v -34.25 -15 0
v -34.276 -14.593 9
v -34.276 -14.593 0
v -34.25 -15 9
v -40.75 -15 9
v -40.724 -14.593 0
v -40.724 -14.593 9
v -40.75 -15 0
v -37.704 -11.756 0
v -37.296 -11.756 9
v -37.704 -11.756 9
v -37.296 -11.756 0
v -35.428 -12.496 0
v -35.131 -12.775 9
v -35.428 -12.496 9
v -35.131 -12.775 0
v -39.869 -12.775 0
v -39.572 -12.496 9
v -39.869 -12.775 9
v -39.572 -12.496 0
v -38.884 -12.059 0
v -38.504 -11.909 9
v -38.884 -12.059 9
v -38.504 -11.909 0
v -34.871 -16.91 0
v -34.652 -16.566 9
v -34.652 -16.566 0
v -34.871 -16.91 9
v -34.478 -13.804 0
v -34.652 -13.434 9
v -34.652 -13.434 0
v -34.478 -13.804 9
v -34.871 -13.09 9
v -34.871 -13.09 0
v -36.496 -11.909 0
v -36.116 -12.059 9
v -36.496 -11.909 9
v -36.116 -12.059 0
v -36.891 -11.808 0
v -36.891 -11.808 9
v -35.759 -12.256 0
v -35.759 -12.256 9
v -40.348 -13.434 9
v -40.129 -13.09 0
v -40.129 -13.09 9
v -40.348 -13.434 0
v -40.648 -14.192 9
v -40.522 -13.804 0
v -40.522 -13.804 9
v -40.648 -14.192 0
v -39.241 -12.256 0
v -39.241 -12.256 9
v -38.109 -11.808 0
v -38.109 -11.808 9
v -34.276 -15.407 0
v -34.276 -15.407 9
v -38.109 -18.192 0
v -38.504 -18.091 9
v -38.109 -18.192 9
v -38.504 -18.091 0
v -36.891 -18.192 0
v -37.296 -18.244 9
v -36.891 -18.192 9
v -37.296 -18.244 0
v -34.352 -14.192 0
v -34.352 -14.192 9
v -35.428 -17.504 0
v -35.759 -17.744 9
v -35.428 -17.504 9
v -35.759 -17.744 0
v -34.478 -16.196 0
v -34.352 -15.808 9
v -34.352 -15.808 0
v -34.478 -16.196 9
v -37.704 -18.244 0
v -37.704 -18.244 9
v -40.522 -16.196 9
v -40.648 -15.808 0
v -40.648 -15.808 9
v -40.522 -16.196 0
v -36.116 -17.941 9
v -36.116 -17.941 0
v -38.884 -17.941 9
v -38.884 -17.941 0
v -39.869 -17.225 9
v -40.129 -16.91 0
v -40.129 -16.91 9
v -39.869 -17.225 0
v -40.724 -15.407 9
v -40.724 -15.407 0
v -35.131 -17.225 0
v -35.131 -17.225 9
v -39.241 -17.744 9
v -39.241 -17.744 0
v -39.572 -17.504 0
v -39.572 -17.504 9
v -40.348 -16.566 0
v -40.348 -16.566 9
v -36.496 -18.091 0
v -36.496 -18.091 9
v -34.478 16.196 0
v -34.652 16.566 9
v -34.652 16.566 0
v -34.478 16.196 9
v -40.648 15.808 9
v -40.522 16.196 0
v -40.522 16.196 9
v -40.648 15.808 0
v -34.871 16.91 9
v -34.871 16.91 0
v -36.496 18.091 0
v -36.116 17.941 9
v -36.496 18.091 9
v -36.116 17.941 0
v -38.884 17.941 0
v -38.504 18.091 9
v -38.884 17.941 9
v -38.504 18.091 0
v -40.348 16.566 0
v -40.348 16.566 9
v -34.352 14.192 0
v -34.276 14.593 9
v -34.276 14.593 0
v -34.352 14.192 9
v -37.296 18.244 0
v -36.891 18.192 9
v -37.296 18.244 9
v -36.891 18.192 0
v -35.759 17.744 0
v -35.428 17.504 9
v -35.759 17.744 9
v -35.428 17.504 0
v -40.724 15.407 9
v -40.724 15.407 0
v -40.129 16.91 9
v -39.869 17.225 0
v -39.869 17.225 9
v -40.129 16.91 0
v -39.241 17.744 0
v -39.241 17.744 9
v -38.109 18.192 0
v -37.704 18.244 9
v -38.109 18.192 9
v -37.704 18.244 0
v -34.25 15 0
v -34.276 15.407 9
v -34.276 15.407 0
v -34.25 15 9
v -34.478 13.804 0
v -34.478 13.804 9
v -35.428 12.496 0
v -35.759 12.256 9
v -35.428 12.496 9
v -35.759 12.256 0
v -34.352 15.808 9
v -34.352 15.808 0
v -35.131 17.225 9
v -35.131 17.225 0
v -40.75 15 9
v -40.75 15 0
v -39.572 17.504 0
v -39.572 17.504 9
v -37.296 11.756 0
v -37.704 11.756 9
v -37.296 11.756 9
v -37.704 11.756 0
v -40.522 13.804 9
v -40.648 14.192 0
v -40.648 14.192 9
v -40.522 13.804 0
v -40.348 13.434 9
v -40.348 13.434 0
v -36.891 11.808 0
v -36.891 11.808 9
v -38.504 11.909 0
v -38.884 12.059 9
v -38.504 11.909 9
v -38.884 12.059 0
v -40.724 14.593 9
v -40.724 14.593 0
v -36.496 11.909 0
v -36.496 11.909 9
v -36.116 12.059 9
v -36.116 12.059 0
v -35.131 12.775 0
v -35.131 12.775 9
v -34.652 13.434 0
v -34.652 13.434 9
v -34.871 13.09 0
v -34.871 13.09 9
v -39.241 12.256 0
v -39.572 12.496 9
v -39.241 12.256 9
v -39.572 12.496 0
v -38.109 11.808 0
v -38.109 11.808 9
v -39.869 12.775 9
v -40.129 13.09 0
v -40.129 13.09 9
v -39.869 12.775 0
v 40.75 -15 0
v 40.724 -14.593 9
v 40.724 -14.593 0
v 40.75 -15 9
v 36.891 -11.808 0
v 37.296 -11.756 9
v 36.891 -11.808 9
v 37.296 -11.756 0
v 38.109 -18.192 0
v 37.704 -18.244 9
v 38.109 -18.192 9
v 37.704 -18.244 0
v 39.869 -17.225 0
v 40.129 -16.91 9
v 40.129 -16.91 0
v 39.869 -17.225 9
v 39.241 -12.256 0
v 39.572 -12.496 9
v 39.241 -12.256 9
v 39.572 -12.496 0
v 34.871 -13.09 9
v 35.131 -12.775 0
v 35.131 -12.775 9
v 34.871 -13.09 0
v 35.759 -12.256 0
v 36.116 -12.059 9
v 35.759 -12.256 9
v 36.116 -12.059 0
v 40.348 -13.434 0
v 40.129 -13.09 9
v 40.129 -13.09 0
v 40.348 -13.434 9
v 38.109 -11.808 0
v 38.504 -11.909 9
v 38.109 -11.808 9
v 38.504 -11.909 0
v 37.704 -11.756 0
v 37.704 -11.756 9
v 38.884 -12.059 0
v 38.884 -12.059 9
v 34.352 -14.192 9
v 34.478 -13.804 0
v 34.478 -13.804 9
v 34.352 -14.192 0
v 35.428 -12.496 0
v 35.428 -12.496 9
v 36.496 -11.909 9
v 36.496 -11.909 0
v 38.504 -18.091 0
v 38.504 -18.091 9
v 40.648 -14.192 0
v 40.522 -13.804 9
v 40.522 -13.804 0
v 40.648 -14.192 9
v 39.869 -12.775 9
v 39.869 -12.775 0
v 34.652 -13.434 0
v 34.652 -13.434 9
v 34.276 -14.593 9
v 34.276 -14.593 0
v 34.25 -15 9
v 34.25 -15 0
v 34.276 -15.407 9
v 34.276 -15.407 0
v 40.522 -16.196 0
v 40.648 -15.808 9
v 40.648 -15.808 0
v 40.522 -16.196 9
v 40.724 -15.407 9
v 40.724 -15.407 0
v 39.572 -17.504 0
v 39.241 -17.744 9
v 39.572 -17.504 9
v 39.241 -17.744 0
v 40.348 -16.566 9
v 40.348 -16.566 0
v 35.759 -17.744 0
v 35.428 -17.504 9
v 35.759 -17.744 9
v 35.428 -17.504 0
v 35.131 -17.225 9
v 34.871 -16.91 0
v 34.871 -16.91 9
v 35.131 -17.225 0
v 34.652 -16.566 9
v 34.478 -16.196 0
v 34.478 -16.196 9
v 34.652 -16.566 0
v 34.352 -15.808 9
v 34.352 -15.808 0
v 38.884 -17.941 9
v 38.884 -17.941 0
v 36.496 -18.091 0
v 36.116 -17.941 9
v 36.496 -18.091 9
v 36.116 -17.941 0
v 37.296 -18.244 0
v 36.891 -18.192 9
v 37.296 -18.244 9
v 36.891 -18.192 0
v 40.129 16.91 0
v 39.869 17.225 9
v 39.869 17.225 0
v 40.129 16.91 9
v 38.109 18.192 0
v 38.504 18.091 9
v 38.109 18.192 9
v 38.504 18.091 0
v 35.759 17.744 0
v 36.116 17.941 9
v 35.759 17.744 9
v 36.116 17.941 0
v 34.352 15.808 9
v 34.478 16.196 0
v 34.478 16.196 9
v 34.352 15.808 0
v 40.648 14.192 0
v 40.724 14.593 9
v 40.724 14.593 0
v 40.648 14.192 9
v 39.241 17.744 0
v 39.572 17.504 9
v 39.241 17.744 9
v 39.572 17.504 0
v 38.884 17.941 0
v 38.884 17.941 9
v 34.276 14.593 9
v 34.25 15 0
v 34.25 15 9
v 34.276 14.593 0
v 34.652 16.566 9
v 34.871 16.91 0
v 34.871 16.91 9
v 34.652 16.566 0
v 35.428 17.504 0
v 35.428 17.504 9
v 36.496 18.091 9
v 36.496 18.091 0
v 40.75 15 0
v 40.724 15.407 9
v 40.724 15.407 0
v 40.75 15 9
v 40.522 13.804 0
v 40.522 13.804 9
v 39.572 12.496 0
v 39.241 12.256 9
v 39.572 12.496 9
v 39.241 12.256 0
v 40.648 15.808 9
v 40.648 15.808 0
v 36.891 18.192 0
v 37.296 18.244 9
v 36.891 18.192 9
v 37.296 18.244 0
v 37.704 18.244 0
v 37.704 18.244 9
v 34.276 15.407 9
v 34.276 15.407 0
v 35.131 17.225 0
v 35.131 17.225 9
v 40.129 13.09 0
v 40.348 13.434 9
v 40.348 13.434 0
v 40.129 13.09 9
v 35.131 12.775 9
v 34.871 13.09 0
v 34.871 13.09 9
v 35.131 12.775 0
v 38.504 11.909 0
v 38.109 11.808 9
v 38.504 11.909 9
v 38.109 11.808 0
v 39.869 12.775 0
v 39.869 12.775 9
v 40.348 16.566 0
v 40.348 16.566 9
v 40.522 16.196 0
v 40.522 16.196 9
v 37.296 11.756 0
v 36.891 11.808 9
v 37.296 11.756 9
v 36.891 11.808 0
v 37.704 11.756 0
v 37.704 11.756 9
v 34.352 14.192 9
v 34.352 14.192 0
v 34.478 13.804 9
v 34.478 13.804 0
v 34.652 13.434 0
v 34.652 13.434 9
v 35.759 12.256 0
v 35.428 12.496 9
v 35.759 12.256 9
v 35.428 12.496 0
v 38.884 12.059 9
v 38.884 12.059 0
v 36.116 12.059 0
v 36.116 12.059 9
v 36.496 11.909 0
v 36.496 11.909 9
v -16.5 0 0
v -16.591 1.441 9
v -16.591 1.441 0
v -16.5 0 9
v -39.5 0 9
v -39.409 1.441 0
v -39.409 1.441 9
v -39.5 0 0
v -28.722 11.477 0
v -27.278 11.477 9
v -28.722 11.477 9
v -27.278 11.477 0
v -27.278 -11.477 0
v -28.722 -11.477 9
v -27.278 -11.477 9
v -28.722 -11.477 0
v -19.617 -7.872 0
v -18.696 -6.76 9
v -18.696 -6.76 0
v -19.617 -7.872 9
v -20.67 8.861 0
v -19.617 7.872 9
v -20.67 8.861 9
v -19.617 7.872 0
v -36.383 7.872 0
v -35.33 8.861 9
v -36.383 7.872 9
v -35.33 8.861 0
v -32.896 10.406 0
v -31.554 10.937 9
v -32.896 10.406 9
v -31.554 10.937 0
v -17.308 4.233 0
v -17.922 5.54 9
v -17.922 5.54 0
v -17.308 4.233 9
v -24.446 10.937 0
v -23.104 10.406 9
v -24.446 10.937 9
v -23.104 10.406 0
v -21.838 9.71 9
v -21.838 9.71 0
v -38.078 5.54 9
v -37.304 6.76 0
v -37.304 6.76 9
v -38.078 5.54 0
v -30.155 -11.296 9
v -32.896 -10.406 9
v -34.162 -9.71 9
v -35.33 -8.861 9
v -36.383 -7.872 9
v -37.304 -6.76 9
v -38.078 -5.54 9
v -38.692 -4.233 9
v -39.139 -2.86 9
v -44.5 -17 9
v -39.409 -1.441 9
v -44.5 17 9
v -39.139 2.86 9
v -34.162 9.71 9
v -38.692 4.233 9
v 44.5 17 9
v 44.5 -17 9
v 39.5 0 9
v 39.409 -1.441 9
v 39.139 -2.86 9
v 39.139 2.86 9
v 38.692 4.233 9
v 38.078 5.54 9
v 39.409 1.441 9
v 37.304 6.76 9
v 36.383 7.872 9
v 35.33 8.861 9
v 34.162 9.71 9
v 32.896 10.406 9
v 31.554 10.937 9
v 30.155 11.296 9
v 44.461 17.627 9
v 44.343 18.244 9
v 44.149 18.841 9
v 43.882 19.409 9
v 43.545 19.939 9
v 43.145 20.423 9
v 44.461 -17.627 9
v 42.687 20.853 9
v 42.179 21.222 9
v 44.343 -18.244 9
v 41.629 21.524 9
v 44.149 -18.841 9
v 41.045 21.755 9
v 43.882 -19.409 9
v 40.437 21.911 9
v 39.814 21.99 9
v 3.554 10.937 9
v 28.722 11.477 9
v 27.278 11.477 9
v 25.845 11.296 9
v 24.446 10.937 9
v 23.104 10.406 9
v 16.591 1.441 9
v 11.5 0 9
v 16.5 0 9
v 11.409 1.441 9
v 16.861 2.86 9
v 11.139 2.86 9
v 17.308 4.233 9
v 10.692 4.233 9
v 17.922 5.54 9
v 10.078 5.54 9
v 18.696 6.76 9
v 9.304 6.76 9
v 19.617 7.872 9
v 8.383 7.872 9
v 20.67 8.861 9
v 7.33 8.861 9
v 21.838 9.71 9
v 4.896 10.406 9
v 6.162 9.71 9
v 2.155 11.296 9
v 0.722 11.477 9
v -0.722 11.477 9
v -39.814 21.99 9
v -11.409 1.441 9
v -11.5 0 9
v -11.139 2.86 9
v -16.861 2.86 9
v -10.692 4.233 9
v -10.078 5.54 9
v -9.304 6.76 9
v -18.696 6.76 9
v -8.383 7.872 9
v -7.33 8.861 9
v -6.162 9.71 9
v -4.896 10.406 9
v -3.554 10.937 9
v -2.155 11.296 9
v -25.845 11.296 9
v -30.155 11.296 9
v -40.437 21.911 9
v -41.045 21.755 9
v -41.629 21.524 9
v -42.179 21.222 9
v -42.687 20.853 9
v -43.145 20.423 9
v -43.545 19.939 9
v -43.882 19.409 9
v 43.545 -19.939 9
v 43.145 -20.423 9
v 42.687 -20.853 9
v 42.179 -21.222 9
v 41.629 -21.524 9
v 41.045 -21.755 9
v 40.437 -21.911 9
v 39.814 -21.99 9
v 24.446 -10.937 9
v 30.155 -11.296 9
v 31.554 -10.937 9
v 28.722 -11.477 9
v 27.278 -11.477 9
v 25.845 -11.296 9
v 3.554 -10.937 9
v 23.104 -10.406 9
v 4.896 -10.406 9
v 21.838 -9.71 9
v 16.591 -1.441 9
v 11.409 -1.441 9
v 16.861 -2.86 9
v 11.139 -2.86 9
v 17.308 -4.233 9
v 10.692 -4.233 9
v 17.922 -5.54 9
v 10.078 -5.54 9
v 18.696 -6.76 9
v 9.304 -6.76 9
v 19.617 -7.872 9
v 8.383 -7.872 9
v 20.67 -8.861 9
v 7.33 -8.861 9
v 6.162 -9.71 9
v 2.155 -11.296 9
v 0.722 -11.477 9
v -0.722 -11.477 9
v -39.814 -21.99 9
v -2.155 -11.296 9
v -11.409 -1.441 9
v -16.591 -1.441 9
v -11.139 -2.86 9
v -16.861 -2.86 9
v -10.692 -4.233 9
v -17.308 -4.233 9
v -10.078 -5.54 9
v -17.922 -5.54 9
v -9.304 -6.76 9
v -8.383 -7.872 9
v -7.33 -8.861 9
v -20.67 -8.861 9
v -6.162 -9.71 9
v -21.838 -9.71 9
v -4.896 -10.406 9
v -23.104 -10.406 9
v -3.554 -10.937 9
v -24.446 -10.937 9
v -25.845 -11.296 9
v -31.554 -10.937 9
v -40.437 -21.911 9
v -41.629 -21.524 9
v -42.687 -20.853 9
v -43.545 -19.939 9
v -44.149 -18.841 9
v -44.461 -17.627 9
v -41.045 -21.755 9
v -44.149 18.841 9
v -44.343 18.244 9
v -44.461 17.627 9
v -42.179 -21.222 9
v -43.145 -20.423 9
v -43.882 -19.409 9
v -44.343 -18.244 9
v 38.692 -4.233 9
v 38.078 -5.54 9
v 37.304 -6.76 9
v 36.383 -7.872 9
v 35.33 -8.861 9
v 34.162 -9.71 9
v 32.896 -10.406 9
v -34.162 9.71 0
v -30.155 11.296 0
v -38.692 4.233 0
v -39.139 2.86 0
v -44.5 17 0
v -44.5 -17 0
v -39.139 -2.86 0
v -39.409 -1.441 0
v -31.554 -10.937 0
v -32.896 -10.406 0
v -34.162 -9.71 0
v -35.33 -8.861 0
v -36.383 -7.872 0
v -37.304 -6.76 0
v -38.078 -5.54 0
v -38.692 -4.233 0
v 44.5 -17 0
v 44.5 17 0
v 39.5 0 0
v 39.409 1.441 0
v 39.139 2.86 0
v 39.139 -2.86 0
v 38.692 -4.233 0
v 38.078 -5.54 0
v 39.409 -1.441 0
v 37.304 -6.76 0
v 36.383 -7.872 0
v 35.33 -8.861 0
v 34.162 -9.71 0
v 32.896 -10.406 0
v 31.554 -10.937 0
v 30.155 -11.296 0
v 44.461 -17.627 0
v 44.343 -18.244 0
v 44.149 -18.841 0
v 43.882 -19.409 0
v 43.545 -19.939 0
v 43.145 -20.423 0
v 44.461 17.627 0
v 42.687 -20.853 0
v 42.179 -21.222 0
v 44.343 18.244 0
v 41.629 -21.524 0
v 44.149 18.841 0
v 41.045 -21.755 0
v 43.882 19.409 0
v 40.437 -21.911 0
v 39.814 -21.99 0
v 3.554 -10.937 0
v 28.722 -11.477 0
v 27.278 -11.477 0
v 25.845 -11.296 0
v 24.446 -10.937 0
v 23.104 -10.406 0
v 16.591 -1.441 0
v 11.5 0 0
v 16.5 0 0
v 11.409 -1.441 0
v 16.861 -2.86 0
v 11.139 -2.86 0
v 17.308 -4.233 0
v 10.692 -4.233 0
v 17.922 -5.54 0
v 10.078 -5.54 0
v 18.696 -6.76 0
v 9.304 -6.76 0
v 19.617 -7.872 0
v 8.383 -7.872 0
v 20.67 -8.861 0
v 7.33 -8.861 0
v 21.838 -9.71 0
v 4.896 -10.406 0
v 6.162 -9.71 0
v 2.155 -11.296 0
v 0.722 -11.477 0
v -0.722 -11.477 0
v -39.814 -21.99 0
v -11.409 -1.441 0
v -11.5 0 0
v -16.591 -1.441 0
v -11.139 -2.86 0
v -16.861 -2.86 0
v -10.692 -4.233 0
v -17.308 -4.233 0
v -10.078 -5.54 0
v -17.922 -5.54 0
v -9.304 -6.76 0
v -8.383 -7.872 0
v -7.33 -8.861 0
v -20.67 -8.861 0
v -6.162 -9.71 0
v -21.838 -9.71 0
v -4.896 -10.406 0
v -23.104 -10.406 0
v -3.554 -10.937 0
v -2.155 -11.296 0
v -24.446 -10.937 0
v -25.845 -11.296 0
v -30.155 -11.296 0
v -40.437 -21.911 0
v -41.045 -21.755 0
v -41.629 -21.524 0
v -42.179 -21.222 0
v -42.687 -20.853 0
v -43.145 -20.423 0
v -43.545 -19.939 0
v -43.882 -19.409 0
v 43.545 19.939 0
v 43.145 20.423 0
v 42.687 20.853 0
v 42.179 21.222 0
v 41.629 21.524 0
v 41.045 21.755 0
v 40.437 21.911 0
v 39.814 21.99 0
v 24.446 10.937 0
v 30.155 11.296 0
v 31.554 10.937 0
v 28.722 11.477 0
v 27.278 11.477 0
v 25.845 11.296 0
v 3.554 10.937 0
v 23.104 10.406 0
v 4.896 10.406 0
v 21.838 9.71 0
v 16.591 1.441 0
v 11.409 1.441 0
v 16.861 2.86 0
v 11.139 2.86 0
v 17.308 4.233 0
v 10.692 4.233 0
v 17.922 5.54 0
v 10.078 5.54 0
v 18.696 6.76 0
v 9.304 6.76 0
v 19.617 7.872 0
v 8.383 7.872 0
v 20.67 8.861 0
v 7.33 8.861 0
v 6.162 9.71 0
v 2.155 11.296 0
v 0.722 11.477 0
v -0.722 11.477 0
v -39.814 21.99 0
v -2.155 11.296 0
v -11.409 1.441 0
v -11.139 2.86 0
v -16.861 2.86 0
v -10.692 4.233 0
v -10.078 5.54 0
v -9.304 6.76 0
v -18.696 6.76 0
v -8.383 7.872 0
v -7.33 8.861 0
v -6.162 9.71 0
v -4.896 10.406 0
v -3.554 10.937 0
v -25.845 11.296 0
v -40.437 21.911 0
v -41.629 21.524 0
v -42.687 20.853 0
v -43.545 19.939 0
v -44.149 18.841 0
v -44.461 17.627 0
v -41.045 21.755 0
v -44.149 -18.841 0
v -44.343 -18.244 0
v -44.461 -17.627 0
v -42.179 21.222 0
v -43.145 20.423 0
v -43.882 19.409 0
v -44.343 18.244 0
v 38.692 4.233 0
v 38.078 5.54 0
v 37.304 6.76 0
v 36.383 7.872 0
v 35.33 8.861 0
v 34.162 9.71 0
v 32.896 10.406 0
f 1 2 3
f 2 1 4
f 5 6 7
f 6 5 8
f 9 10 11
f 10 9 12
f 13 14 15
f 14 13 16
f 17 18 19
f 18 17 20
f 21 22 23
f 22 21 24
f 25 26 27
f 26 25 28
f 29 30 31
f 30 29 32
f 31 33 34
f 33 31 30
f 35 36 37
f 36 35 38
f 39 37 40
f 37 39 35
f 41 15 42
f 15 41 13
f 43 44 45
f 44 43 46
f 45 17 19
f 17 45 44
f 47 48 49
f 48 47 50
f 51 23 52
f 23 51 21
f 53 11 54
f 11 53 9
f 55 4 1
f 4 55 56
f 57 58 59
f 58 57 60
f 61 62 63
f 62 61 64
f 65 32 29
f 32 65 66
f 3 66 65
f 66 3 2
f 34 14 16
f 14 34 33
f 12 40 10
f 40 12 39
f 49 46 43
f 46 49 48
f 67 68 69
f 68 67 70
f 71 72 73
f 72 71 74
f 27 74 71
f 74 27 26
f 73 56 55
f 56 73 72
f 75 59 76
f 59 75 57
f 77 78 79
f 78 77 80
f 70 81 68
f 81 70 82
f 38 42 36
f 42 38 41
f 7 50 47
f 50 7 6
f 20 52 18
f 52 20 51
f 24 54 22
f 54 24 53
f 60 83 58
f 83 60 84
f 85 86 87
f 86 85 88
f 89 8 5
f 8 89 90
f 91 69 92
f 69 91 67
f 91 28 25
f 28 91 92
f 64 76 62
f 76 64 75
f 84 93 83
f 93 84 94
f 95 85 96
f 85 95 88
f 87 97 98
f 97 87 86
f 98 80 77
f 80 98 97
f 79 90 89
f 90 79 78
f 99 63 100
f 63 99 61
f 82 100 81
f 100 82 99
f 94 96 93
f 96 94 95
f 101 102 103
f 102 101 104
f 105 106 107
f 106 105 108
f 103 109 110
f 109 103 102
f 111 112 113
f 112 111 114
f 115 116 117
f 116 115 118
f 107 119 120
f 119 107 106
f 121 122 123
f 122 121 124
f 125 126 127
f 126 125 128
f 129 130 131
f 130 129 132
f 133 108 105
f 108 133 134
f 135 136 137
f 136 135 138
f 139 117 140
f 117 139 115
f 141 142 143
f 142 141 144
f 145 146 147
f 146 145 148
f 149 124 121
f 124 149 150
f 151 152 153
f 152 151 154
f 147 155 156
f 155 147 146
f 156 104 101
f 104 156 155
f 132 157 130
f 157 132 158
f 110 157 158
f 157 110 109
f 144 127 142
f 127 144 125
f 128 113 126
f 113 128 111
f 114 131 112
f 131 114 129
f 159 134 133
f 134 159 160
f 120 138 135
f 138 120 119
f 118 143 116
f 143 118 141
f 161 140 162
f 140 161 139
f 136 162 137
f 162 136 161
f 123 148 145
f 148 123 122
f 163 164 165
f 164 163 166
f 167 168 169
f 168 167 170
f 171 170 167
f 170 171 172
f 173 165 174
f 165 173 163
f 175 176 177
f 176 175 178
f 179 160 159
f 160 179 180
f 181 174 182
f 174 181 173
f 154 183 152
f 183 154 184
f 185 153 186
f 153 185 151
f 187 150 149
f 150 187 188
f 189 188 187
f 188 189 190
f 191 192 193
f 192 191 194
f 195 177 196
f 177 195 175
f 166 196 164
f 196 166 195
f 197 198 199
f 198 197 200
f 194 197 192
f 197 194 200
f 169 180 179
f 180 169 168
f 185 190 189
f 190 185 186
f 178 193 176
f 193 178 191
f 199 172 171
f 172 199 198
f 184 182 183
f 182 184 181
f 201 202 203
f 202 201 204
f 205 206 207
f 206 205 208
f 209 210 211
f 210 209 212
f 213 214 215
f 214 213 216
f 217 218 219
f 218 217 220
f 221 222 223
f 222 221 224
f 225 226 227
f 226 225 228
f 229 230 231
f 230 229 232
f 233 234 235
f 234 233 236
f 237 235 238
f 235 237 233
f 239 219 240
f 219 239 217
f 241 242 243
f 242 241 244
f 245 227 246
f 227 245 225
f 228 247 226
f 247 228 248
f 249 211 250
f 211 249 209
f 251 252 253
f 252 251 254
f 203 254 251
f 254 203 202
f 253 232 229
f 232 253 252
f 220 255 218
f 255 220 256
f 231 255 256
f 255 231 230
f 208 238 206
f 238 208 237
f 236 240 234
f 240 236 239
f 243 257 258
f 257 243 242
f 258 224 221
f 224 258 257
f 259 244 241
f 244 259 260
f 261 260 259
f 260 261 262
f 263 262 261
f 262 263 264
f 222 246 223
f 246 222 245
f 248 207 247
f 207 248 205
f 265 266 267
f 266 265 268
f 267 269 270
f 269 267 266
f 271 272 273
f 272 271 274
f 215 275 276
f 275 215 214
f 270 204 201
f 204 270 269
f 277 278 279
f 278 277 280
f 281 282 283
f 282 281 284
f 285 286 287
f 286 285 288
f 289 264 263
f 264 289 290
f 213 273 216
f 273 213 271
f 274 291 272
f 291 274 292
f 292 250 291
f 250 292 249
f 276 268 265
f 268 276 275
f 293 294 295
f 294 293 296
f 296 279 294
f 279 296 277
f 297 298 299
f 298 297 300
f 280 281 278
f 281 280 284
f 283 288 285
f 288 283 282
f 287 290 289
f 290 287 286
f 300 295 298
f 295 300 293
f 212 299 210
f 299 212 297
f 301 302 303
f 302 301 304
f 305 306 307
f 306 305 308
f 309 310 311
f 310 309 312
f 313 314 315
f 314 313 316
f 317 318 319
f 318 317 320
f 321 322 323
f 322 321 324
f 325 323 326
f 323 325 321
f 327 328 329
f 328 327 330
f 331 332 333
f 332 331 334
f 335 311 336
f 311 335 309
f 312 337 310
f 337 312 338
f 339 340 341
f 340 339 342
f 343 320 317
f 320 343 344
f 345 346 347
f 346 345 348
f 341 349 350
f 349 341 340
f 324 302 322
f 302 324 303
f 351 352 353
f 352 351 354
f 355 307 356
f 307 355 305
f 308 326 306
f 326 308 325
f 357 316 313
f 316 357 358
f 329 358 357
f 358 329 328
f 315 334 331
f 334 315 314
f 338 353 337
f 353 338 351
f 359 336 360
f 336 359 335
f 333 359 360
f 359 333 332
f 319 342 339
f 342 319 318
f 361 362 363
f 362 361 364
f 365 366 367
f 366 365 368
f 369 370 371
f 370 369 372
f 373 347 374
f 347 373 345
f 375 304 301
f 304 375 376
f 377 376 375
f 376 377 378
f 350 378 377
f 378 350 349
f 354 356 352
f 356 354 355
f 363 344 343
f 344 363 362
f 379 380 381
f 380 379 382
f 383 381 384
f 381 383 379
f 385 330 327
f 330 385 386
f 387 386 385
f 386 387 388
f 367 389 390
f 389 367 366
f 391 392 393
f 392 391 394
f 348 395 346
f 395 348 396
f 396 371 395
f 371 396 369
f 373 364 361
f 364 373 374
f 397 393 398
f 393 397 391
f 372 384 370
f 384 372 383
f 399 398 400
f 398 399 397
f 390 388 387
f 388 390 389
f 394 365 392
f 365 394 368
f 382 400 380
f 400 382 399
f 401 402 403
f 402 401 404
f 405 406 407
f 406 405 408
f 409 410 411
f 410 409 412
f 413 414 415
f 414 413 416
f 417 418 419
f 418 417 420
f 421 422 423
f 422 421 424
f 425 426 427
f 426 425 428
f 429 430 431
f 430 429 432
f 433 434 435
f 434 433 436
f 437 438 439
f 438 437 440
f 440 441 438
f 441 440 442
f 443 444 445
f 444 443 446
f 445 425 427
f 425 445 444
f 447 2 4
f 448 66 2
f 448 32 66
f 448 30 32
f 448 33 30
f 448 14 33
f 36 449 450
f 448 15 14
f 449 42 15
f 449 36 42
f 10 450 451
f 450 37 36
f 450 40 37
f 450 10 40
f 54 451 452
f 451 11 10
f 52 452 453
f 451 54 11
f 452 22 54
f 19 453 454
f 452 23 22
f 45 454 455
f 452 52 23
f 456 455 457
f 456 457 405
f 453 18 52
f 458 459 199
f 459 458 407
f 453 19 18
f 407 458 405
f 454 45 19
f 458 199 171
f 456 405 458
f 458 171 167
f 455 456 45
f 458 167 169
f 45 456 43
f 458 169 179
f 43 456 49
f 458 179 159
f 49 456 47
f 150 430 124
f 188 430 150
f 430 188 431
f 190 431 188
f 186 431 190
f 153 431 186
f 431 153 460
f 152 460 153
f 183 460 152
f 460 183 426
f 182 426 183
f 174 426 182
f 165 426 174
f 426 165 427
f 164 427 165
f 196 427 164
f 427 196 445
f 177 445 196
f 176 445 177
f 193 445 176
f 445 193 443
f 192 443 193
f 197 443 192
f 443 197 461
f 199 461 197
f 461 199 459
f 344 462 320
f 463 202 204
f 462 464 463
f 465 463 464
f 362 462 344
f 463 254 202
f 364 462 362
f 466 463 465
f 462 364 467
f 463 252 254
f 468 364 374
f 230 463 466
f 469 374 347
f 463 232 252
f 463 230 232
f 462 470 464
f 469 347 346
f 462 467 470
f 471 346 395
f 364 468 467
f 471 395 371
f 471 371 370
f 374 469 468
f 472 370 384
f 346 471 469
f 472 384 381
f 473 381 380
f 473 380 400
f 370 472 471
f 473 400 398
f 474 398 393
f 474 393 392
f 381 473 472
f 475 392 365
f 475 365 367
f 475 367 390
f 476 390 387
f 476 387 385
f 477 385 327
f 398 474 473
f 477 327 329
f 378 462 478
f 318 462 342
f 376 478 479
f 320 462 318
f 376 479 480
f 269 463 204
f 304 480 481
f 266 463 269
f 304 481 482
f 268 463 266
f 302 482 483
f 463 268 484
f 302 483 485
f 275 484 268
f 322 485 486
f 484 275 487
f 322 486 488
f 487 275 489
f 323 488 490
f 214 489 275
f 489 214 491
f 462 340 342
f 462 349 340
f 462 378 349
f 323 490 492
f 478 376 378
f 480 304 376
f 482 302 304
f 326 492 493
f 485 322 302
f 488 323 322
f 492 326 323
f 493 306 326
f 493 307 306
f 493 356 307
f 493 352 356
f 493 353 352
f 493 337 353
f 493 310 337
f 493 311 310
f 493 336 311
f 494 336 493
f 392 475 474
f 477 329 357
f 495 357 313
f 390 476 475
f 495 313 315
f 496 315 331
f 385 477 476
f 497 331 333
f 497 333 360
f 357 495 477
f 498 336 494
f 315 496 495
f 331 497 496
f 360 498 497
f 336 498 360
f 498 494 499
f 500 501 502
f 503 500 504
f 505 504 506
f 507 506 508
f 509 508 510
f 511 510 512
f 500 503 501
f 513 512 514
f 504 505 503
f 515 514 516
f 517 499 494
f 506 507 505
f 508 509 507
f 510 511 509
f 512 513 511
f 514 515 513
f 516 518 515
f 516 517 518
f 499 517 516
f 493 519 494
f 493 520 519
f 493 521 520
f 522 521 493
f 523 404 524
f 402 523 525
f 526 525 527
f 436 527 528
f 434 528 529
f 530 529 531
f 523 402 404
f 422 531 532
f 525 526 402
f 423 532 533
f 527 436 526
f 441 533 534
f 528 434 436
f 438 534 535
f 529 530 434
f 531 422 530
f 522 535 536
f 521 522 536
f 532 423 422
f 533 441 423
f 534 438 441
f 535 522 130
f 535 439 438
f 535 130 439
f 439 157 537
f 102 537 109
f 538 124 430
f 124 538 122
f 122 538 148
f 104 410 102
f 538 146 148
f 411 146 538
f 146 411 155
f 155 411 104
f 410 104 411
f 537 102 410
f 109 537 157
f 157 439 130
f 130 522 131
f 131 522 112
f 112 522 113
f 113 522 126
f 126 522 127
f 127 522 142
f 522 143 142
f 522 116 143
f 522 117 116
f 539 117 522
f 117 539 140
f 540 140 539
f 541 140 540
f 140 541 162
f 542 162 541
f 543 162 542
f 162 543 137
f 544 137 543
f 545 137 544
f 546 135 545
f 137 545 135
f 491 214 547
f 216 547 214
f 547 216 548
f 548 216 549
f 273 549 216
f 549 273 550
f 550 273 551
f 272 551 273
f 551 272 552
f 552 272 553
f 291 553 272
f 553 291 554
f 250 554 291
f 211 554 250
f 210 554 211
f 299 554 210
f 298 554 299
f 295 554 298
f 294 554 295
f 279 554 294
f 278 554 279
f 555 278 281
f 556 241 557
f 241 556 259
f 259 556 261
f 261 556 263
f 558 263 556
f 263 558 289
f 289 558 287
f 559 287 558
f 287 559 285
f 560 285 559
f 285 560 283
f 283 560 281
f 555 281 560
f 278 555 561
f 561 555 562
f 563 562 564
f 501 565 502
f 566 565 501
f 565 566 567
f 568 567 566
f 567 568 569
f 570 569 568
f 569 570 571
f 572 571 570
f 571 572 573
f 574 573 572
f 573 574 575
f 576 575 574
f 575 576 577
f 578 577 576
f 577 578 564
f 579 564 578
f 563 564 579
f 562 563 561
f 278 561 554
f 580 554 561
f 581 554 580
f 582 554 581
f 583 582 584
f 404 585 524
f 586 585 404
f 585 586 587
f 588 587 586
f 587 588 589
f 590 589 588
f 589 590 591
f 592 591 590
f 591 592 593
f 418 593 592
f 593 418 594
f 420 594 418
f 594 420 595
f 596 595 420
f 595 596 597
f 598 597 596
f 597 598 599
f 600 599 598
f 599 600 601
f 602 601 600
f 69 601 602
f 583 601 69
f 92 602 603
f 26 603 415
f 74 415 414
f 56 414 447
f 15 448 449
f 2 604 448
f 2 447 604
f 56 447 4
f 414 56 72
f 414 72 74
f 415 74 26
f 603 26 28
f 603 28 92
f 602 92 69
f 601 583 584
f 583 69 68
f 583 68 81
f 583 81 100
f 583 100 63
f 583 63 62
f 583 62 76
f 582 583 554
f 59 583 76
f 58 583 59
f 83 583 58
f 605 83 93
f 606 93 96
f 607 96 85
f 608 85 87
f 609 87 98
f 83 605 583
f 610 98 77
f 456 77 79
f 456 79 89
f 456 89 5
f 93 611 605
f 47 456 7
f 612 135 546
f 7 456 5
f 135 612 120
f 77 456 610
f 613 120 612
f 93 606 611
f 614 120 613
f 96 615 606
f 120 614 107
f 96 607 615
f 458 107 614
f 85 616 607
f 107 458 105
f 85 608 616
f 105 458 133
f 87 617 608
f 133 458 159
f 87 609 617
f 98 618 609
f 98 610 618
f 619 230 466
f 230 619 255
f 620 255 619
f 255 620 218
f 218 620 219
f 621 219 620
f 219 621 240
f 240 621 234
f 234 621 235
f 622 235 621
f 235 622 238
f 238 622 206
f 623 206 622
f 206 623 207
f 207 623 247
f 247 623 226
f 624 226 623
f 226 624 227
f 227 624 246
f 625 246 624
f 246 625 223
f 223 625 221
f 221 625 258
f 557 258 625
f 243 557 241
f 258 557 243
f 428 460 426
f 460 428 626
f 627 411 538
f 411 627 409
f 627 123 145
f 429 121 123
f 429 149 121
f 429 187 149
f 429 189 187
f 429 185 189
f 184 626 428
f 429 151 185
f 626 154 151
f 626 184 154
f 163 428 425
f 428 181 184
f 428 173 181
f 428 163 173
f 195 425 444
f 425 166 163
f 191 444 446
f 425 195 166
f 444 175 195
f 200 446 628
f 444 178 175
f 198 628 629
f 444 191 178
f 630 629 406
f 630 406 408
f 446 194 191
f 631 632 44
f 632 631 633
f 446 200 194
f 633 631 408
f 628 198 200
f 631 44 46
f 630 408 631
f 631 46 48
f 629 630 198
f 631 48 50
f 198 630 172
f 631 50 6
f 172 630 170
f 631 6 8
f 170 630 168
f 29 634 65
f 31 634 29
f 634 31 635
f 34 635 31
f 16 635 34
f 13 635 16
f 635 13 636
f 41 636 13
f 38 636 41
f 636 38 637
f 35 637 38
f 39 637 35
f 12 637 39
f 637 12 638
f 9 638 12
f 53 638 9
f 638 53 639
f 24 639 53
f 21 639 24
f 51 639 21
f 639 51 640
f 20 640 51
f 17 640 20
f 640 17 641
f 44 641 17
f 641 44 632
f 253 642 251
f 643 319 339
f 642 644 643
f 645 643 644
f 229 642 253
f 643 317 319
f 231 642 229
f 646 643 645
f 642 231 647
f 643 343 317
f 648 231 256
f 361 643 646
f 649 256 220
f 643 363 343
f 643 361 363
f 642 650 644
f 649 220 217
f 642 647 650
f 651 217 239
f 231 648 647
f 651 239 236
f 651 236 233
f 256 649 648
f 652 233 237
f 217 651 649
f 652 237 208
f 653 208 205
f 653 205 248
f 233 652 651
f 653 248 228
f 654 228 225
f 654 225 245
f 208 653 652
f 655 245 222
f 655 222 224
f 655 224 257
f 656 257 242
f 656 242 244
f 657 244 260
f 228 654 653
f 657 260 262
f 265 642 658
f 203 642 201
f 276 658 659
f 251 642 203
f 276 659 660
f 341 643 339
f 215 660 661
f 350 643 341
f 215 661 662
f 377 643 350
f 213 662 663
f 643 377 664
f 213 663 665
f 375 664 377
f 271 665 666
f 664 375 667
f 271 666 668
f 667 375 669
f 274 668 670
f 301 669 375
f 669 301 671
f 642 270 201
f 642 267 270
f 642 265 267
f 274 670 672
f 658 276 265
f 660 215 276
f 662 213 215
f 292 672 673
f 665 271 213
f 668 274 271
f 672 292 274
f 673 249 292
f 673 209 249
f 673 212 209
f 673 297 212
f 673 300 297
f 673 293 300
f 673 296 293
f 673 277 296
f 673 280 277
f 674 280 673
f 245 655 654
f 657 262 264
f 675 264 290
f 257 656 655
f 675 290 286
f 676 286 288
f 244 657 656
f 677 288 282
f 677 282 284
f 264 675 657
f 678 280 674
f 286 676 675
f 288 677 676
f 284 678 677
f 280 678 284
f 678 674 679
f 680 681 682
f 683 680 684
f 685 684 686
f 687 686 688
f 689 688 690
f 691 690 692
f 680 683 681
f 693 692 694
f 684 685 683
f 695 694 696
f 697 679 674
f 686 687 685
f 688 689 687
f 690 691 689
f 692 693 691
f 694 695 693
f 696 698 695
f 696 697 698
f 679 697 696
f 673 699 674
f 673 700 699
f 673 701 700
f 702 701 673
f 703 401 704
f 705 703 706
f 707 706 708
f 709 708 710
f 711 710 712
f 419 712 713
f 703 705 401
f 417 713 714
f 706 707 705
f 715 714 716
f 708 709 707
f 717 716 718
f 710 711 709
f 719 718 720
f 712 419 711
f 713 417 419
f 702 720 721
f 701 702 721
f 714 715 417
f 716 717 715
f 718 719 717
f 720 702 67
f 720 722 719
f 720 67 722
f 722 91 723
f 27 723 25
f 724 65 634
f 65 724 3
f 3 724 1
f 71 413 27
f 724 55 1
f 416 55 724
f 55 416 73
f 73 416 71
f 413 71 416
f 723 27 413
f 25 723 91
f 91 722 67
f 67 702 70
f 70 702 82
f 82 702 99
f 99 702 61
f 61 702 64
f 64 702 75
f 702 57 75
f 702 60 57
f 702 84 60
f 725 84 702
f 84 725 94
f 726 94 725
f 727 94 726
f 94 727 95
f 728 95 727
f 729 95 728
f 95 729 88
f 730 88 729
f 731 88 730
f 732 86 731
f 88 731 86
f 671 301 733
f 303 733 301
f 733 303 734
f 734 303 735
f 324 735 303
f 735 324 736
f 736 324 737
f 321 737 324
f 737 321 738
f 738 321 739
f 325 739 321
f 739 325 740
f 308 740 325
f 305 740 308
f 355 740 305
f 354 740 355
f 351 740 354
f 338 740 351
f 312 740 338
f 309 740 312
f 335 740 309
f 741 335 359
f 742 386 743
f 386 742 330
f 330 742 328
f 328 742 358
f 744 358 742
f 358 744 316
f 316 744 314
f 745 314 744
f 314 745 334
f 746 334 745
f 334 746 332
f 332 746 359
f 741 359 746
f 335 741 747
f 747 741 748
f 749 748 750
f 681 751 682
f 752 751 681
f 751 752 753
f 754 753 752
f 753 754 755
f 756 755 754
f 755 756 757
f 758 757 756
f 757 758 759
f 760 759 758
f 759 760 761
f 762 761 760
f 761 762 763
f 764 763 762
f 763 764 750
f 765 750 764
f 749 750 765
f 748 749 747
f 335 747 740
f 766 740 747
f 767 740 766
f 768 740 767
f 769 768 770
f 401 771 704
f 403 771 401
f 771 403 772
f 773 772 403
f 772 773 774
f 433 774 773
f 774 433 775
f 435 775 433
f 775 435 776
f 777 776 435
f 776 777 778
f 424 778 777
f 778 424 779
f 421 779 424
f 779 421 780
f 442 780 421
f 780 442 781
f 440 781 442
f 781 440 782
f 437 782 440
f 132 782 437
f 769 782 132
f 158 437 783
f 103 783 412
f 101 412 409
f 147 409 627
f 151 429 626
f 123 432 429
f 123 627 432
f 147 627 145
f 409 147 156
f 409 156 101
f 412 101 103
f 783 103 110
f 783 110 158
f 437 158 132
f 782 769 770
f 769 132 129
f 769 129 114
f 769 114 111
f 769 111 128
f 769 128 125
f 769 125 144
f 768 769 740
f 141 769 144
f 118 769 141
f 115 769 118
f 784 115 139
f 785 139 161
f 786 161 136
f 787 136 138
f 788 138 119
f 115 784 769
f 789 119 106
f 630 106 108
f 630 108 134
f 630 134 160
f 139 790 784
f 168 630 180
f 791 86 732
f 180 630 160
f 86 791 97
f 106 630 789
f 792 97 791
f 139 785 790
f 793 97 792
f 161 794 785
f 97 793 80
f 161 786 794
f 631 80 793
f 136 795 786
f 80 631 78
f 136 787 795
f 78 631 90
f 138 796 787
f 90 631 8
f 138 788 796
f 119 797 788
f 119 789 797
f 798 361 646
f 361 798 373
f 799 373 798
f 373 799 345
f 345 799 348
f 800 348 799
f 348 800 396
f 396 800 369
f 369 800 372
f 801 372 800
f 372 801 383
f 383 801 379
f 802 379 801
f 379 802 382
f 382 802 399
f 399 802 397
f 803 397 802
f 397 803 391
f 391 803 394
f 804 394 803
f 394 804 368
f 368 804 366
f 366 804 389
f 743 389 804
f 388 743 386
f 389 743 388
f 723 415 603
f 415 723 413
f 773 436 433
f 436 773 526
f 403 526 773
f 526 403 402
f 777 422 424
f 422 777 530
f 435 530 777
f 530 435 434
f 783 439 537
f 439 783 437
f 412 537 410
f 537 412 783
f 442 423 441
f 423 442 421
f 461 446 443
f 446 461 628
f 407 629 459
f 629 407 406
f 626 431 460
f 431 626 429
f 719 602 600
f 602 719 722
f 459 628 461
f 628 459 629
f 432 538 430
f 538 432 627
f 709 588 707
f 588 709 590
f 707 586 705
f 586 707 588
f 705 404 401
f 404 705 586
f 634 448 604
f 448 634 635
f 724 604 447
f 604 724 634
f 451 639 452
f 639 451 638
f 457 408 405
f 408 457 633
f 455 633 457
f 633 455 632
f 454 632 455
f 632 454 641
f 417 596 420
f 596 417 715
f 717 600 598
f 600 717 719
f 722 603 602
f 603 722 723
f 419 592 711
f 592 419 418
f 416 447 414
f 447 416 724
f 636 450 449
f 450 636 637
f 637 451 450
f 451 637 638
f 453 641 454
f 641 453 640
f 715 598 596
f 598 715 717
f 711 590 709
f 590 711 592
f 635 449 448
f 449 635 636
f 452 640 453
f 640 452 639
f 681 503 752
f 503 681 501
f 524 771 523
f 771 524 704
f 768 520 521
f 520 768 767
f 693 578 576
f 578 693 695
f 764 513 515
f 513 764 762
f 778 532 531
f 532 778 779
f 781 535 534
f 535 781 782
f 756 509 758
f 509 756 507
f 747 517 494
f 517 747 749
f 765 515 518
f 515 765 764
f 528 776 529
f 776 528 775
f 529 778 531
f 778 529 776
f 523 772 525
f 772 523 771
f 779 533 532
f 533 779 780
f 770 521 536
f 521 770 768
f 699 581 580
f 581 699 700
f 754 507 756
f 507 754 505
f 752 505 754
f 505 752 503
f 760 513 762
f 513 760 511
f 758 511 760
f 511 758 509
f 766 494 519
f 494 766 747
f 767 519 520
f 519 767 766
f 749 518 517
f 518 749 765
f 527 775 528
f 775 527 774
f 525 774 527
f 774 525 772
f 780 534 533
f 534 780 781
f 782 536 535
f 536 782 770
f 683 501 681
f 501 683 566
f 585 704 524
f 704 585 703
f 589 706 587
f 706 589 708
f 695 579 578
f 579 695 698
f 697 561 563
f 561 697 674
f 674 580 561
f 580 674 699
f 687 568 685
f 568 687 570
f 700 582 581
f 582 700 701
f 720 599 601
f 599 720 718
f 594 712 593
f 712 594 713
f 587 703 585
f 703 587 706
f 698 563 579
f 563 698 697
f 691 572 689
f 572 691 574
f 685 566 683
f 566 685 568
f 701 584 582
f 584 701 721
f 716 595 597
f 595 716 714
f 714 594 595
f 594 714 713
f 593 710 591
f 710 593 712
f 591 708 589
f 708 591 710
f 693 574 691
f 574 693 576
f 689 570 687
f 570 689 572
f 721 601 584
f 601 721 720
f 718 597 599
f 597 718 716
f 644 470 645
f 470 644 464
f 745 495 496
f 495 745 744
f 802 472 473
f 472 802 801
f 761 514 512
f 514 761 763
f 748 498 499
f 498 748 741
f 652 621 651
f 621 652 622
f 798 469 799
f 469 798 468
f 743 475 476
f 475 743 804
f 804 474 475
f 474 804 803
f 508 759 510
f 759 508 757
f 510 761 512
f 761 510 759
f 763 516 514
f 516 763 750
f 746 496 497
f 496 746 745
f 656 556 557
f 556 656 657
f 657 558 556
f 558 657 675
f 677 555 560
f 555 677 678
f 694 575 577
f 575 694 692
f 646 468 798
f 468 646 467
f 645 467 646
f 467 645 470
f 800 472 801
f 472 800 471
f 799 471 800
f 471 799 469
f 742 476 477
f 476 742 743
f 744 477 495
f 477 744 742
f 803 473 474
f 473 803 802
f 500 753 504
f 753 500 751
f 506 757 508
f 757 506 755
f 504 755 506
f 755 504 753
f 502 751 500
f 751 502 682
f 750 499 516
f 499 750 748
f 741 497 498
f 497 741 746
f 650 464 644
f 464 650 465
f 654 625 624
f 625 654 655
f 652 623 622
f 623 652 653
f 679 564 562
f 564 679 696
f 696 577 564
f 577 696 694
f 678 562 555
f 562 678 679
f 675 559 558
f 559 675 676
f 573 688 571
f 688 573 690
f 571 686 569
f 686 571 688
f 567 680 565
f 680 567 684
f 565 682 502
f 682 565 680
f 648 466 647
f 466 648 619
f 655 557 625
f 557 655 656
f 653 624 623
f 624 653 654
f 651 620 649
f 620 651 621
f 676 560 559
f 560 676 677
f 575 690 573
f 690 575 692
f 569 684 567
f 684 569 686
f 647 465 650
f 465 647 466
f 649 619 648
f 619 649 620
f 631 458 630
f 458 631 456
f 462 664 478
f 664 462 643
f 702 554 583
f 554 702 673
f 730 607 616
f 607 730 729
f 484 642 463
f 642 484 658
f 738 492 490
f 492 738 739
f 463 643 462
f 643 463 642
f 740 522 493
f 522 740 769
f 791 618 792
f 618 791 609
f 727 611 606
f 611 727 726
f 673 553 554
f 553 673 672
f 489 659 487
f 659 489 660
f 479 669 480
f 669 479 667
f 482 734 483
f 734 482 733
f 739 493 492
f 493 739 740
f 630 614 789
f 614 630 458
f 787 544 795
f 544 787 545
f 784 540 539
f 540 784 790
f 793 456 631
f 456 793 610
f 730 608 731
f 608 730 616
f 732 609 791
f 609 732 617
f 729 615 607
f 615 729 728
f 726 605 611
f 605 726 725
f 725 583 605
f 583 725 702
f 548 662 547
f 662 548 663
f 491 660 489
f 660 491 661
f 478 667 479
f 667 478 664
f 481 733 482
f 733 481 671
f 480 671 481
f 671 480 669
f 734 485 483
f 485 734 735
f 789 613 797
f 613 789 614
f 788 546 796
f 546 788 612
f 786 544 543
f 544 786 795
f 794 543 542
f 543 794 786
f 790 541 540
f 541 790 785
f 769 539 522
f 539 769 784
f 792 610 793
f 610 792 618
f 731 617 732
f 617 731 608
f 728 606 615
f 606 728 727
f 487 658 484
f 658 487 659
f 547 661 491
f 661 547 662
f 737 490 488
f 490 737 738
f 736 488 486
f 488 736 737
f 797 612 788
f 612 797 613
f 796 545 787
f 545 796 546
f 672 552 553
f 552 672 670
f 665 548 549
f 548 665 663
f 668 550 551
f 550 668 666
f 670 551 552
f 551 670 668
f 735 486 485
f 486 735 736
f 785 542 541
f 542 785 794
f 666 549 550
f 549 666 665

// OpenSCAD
$fn = 50;


difference() {
	union() {
		hull() {
			translate(v = [-39.5000000000, 17.0000000000, 0]) {
				cylinder(h = 9, r = 5);
			}
			translate(v = [39.5000000000, 17.0000000000, 0]) {
				cylinder(h = 9, r = 5);
			}
			translate(v = [-39.5000000000, -17.0000000000, 0]) {
				cylinder(h = 9, r = 5);
			}
			translate(v = [39.5000000000, -17.0000000000, 0]) {
				cylinder(h = 9, r = 5);
			}
		}
	}
	union() {
		#translate(v = [-37.5000000000, -15.0000000000, -100.0000000000]) {
			cylinder(h = 200, r = 3.2500000000);
		}
		#translate(v = [-37.5000000000, 15.0000000000, -100.0000000000]) {
			cylinder(h = 200, r = 3.2500000000);
		}
		#translate(v = [37.5000000000, -15.0000000000, -100.0000000000]) {
			cylinder(h = 200, r = 3.2500000000);
		}
		#translate(v = [37.5000000000, 15.0000000000, -100.0000000000]) {
			cylinder(h = 200, r = 3.2500000000);
		}
		#translate(v = [-28.0000000000, 0, 0]) {
			cylinder(h = 9, r = 11.5000000000);
		}
		#cylinder(h = 9, r = 11.5000000000);
		#translate(v = [28.0000000000, 0, 0]) {
			cylinder(h = 9, r = 11.5000000000);
		}
	}
}
